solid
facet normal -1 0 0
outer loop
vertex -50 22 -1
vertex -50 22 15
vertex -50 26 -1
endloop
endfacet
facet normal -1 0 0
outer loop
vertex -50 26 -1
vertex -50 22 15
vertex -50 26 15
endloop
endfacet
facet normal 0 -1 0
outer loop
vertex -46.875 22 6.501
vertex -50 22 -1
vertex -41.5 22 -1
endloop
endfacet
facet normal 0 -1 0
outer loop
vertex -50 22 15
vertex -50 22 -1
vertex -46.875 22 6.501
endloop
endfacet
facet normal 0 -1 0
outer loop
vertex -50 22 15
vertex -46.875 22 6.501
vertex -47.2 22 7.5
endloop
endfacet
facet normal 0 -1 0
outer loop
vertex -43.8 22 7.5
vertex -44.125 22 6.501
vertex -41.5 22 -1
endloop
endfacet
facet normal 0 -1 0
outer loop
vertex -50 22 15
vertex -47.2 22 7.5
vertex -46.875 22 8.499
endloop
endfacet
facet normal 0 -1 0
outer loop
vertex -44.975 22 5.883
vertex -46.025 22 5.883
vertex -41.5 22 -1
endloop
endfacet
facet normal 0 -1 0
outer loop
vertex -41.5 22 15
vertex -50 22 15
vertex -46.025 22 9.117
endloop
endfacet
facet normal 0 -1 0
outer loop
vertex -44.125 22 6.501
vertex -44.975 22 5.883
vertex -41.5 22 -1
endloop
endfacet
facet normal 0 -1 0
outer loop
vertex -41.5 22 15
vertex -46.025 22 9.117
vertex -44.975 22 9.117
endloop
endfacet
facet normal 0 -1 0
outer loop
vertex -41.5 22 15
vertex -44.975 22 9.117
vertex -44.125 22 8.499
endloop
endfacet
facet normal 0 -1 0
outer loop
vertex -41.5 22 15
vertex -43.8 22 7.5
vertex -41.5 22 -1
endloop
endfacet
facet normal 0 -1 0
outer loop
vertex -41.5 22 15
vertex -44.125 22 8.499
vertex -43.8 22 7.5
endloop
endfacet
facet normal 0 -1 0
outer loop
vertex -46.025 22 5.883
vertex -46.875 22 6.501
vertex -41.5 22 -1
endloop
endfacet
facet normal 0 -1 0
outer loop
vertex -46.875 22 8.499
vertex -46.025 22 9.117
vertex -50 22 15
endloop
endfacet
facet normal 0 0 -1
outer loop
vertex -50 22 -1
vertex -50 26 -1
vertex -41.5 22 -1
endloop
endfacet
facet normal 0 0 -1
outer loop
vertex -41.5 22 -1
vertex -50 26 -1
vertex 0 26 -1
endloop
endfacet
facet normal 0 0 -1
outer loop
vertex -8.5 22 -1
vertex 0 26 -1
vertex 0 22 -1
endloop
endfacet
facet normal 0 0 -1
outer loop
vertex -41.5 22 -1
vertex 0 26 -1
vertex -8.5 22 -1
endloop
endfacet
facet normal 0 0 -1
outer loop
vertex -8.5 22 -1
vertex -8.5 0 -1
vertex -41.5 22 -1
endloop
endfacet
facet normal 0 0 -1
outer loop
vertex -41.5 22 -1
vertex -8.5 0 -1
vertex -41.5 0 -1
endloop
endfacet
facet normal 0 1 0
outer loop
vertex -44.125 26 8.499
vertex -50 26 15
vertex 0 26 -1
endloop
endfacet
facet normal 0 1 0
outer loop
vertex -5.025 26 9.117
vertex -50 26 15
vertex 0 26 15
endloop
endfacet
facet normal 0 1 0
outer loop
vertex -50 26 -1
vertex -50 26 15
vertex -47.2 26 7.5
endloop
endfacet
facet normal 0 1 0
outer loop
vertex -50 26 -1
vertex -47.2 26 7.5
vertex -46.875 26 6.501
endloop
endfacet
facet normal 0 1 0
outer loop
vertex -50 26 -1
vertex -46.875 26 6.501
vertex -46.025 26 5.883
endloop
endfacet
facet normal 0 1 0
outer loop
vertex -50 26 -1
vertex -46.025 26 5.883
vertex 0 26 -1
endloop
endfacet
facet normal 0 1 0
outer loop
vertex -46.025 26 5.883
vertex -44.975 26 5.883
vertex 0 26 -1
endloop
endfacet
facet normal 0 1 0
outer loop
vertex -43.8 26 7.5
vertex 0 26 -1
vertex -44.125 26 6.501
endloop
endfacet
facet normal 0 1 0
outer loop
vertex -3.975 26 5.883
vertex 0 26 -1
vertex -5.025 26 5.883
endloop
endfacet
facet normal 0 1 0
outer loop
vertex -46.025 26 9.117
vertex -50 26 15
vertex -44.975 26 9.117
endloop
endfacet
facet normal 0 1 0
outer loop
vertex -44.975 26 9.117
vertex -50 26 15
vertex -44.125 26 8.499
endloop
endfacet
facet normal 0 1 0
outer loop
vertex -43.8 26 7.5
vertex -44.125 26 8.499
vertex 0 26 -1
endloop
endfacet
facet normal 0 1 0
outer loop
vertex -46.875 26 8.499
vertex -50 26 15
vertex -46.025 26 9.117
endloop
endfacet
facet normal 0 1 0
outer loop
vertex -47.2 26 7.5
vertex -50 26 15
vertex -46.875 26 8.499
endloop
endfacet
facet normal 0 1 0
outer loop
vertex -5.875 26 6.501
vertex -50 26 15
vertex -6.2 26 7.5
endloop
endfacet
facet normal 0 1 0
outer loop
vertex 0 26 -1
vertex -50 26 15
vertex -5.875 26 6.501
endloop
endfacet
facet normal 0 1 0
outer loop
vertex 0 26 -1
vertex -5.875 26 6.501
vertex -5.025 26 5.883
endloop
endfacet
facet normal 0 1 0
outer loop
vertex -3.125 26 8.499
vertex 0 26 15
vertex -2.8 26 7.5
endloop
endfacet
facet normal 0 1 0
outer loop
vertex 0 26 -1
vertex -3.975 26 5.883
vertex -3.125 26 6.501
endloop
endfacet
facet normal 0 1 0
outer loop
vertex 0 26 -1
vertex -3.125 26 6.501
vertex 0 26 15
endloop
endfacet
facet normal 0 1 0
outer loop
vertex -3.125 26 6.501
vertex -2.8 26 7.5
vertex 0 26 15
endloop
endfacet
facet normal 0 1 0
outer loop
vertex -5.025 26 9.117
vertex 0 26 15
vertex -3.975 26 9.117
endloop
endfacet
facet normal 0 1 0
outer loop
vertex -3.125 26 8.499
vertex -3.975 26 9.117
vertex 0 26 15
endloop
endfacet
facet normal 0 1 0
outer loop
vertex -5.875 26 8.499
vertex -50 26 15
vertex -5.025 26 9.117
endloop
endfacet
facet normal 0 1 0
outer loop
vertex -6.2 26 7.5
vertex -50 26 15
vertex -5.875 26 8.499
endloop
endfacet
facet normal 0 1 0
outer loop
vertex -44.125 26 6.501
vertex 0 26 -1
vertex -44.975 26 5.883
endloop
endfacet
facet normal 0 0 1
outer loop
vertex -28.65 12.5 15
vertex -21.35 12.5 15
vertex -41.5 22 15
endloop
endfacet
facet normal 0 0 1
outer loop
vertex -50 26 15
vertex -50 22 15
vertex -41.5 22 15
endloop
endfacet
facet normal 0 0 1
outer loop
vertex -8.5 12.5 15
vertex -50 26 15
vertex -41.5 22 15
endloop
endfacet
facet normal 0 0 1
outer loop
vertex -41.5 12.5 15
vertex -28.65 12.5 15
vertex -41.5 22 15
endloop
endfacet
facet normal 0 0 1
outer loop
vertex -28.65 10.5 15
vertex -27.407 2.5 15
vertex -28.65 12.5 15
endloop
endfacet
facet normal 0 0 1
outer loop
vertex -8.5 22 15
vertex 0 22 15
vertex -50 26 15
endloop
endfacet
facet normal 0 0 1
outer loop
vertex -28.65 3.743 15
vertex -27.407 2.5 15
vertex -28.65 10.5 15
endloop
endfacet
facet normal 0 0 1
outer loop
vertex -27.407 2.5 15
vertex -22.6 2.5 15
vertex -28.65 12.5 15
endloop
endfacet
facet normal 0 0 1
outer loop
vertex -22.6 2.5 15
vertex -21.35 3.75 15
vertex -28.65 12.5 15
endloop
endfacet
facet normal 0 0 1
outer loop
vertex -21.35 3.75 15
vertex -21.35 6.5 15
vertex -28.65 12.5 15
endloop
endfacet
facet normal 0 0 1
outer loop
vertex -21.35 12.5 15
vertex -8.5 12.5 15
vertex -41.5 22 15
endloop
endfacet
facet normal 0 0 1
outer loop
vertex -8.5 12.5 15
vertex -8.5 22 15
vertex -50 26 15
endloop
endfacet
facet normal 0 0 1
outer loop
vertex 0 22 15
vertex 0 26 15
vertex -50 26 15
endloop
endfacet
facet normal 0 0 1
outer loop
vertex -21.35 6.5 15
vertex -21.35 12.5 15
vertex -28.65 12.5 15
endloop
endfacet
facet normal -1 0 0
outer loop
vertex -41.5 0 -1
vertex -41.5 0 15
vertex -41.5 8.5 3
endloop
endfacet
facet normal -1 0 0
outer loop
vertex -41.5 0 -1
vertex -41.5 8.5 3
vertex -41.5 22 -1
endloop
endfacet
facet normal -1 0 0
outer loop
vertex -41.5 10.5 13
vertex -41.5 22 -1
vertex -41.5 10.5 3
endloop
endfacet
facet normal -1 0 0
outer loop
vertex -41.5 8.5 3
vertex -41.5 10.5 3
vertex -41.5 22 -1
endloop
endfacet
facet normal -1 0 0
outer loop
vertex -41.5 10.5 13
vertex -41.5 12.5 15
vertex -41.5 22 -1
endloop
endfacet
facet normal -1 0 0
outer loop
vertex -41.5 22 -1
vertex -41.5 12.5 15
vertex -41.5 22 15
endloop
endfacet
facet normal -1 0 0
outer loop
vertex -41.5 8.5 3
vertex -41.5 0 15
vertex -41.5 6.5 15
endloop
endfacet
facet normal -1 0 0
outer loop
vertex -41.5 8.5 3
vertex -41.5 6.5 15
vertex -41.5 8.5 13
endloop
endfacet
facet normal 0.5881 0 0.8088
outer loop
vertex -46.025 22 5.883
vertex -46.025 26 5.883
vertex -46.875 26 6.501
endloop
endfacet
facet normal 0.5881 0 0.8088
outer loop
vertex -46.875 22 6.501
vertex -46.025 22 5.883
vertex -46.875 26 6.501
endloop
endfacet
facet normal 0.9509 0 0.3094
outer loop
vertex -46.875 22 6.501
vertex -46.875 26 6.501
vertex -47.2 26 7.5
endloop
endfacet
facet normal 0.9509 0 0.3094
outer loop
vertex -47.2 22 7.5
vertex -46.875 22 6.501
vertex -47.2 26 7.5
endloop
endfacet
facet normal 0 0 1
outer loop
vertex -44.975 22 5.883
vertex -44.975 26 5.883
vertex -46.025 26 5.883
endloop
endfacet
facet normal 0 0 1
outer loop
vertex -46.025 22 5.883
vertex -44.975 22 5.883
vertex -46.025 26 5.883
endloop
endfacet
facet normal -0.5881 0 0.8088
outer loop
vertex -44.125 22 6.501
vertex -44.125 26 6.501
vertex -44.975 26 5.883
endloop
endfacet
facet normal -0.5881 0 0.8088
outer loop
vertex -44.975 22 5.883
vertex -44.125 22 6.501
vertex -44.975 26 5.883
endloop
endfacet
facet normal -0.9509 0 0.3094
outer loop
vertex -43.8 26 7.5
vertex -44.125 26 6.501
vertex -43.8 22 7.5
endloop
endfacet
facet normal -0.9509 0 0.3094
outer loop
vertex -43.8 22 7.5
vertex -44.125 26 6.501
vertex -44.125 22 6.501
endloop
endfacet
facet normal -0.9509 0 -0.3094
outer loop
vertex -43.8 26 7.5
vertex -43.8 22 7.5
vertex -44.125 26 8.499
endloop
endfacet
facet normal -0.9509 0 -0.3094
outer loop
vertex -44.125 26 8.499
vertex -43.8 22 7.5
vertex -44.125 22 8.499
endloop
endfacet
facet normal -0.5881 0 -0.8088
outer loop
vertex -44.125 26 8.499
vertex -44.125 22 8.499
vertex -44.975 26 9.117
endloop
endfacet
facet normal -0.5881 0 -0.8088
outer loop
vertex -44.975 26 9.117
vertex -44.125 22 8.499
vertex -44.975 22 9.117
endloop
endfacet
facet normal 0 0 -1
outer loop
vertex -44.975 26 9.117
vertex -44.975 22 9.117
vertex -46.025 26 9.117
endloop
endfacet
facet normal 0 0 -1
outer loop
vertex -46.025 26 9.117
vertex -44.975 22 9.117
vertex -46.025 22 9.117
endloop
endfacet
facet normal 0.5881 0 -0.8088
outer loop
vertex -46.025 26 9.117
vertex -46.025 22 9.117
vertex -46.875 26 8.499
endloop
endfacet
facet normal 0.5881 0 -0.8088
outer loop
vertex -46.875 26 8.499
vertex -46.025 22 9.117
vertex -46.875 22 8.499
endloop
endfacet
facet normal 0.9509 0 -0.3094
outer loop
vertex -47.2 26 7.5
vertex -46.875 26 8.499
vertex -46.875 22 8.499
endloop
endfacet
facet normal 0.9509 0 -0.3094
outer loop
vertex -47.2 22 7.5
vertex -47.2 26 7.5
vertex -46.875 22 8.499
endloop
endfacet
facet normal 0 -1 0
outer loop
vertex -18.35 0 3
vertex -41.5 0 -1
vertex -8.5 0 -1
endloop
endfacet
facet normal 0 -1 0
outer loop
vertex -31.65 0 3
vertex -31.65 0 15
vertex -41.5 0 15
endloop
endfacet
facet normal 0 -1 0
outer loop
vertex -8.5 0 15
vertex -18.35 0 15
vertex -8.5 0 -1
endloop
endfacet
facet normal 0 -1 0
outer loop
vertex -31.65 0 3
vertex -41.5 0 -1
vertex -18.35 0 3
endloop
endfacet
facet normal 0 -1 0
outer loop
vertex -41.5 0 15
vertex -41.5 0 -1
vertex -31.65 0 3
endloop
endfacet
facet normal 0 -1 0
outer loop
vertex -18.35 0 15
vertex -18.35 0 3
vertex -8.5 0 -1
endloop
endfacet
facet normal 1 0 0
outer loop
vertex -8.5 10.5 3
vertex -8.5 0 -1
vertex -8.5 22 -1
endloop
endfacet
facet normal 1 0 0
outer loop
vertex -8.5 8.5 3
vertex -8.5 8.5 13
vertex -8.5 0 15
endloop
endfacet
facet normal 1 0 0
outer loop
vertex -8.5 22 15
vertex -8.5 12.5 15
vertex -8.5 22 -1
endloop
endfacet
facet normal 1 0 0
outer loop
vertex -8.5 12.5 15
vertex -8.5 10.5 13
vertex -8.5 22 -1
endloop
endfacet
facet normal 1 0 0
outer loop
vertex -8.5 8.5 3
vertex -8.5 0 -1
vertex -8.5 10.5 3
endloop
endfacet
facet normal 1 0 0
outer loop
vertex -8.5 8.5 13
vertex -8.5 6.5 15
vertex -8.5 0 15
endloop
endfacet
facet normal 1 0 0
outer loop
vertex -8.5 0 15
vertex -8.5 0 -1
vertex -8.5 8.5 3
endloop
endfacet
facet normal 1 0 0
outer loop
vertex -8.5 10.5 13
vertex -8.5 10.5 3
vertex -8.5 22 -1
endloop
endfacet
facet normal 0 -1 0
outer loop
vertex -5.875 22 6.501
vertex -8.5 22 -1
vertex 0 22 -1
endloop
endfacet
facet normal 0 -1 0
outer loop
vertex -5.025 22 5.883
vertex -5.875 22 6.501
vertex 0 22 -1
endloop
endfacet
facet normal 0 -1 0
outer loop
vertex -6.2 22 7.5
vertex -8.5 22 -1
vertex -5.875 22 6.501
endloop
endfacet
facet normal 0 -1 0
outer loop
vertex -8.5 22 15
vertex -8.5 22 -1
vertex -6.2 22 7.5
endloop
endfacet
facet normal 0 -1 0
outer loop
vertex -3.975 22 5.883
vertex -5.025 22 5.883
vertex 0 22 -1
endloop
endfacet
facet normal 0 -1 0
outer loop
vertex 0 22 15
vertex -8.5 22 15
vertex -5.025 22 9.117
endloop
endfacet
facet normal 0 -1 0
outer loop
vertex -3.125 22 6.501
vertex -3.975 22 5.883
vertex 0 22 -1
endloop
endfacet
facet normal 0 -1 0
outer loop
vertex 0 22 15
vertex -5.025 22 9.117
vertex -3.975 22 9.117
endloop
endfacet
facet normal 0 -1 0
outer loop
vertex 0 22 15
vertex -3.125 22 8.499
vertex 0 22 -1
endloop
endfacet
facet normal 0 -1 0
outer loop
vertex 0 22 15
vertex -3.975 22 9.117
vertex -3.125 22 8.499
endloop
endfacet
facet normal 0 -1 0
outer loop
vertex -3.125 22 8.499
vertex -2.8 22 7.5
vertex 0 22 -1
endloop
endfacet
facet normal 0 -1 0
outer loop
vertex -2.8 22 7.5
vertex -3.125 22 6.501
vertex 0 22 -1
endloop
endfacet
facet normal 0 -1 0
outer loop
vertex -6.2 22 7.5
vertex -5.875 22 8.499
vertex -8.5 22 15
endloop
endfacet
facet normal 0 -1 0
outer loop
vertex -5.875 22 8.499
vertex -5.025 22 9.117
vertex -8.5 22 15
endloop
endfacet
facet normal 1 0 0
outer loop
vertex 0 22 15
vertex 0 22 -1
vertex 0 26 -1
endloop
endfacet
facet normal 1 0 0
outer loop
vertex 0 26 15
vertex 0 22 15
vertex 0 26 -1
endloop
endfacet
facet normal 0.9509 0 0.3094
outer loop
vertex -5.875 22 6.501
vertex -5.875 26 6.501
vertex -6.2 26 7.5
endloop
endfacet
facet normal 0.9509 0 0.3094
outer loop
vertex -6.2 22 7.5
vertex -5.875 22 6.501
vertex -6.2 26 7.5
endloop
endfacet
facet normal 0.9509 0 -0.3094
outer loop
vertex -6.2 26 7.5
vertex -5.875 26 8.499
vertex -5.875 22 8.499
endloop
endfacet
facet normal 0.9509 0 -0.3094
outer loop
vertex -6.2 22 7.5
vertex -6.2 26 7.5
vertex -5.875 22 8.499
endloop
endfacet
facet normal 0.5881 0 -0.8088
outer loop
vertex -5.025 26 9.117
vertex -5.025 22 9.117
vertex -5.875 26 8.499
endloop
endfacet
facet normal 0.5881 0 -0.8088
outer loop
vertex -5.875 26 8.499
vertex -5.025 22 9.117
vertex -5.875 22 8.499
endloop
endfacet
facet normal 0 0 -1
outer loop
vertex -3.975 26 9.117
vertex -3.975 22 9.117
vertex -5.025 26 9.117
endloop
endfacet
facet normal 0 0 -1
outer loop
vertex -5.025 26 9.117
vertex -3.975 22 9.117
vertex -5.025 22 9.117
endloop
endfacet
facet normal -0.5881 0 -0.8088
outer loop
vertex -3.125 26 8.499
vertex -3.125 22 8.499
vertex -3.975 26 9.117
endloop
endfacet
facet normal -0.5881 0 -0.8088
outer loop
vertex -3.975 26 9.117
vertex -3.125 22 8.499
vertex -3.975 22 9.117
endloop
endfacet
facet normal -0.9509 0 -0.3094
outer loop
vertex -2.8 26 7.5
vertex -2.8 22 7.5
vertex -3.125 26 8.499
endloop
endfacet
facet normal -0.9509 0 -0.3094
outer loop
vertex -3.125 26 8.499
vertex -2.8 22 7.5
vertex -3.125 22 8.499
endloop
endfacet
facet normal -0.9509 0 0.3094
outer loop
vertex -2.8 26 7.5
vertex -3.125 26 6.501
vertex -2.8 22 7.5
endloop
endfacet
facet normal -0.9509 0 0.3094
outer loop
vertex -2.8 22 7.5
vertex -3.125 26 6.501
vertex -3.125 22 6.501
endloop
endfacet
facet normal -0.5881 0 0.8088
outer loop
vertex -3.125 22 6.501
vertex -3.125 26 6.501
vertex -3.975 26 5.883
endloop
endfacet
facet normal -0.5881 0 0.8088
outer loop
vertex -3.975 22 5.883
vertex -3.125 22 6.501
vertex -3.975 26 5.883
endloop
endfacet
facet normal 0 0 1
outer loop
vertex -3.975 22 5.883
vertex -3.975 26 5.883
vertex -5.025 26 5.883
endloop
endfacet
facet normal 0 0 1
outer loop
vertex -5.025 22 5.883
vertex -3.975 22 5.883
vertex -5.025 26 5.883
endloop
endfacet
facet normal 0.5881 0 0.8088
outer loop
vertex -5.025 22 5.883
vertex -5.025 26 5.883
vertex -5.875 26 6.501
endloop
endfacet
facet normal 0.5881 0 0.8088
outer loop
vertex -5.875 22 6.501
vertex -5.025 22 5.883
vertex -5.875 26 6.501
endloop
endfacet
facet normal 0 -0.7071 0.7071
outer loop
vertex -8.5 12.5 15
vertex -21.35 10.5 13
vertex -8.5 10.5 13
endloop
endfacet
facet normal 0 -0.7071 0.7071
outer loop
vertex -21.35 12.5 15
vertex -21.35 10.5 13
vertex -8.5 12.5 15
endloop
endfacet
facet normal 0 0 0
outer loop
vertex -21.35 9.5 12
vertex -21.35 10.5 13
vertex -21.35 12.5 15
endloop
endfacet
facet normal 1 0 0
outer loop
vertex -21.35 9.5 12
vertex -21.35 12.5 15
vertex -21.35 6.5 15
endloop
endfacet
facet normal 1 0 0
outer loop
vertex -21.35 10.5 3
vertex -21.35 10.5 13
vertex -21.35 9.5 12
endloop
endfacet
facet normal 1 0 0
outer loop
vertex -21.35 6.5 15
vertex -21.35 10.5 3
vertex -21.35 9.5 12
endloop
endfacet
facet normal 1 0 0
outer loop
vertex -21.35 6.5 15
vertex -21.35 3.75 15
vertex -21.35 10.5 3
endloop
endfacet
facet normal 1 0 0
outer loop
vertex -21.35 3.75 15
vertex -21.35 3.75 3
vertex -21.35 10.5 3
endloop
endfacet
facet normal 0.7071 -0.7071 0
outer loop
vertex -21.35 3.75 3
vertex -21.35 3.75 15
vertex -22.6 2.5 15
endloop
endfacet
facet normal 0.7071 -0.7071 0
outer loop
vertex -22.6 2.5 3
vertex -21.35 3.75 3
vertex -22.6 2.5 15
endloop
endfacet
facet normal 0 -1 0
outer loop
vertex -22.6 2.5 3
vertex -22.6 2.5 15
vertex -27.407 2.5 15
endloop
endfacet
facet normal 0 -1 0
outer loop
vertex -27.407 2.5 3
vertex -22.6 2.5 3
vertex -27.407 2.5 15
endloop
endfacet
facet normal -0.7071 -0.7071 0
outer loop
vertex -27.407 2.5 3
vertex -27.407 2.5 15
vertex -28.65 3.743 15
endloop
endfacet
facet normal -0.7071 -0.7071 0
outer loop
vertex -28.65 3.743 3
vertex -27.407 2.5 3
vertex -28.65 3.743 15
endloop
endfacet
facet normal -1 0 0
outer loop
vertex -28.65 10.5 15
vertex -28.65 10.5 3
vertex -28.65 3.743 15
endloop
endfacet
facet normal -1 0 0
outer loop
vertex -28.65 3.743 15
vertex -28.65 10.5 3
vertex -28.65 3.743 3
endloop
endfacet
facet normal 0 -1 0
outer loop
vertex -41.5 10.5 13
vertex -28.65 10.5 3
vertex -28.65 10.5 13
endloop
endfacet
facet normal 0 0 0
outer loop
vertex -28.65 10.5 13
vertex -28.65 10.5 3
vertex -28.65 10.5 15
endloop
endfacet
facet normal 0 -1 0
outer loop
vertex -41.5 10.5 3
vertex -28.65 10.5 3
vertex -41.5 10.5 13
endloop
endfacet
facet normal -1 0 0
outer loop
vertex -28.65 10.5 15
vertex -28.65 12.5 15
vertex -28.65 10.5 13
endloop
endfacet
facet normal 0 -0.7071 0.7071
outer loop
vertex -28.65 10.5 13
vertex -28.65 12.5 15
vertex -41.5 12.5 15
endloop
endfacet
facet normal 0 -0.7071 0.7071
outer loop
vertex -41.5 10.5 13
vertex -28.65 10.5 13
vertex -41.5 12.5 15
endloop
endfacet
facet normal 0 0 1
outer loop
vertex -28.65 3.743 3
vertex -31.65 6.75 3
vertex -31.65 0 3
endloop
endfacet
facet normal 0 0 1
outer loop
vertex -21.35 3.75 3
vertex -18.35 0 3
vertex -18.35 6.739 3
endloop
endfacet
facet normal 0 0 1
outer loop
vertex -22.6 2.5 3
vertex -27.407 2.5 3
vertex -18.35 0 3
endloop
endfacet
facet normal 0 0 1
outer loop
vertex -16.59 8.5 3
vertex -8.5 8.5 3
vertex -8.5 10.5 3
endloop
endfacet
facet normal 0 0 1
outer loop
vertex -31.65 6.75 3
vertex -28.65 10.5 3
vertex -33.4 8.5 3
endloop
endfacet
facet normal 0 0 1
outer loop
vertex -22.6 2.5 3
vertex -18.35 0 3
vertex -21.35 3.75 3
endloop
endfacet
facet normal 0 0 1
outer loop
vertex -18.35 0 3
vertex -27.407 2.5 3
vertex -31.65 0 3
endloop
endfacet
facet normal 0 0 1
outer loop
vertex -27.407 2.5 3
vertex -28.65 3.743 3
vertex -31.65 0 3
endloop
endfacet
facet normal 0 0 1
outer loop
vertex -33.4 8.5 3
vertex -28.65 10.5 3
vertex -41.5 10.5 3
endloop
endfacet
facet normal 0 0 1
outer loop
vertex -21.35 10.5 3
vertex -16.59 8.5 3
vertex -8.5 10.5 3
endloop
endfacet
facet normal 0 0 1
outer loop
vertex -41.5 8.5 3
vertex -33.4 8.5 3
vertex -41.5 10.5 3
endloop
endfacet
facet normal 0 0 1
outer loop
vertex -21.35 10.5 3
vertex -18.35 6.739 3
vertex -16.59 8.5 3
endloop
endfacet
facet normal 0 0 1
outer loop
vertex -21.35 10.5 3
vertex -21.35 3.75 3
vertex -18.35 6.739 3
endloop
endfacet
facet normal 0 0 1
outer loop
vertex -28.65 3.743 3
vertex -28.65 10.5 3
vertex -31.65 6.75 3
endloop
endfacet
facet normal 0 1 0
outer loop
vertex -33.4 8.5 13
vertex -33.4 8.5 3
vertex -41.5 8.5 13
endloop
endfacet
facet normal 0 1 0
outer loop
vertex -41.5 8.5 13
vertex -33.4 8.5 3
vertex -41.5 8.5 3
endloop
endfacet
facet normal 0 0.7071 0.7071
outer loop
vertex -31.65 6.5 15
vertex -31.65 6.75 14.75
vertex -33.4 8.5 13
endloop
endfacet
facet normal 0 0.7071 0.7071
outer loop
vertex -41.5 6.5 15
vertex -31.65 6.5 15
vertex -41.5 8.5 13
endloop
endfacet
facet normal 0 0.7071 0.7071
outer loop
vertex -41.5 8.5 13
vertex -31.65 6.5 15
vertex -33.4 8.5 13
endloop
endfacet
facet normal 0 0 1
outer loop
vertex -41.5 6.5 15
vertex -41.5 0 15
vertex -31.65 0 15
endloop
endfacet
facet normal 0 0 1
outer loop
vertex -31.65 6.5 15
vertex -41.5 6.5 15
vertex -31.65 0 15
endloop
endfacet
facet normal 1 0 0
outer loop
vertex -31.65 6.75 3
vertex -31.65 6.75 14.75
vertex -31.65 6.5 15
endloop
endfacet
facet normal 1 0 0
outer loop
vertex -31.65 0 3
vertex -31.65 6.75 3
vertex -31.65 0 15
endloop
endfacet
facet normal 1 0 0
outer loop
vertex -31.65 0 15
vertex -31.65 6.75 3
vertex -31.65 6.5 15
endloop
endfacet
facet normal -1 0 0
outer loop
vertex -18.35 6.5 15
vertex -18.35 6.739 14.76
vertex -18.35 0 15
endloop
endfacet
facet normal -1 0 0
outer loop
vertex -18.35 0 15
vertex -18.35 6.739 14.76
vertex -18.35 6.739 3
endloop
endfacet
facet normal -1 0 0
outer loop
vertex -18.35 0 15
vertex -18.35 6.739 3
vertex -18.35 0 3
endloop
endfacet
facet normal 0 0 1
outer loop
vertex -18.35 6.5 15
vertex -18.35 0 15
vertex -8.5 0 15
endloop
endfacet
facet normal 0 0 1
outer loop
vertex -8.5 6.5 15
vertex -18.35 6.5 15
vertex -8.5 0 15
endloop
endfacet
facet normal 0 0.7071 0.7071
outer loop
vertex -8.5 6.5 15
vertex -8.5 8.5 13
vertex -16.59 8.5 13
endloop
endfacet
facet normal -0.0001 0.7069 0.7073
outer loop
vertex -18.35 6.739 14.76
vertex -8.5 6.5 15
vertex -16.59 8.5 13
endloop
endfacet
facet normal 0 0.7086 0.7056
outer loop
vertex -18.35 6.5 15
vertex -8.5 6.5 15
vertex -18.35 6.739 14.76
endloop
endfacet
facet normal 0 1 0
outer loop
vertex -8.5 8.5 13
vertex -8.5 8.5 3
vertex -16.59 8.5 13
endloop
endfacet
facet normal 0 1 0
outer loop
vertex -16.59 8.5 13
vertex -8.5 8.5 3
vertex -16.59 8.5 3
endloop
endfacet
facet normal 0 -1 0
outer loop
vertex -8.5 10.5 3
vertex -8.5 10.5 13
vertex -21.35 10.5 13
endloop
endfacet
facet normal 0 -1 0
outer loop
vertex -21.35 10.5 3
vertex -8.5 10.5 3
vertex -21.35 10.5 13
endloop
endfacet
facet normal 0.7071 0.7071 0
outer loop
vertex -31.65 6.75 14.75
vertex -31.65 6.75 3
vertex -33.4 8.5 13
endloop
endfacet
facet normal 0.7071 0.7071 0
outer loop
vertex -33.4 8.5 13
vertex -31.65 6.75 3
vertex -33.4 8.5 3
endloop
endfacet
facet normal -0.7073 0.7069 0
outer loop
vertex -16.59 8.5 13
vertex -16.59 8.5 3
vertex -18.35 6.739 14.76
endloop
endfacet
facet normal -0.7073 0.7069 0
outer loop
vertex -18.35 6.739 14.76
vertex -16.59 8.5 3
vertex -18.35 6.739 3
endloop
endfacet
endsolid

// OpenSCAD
// PRUSA iteration3
// Y belt holder
// GNU GPL v3
// Josef Průša <iam@josefprusa.cz> and contributors
// http://www.reprap.org/wiki/Prusa_Mendel
// http://prusamendel.org


module belt_holder_base(){
 translate([-33-8.5,0,-1]) cube([33,15,16]); 
 translate([-33-8.5,11,-1]) cube([33,15,16]);
 translate([-50,22,-1]) cube([50,4,16]);	
}

module belt_holder_labyrinth(){
 // Cut the labyrinth for the belt
 translate([-8.5,0,0]) union(){
	 translate([-23.15,0,3]) cube([3,10.5,15]);
	 translate([-12.85,0,3]) cube([3,10.5,15]);
	 translate([-20.15,-.5,3]) rotate([0, 0, 45]) cube([3,3,15]);
	 translate([-20.15,-.5,3]) cube([8,3,15]);
	 translate([-14.95,1.65,3]) rotate([0, 0, -45]) cube([3,3,15]);
	 translate([-23.15,6.75,3]) rotate([0, 0, 45]) cube([2.5,2.5,15]);
	 translate([-11.625,8.5,3]) rotate([0, 0, -45]) cube([2.5,2.5,15]);
 }

 
 
	union(){
	 // Belt slits
	 translate([-42,8.5,3]) cube([13.25,2,15]);
	 translate([-21.25,8.5,3]) cube([34,2,15]);
	 // Smooth entrance
	 translate([-21.35,9.5,12]) rotate([45,0,0]) cube([34,15,15]);
	 #translate([-42,9.5,12]) rotate([45,0,0]) cube([13.35,15,15]);
	}
}

module belt_holder_beltcut(){
 position_tweak=-0.2;
 // Belt slit
 translate([-66,-0.5+10,3]) cube([67,1,15]);
 // Smooth insert cutout
 translate([-66,-0.5+10,12]) rotate([45,0,0]) cube([67,15,15]);
 // Individual teeth
 for ( i = [0 : 23] ){
  translate([0-i*3+position_tweak,-0.5+8,3]) cube([1.7,3,15]);
 }
 // Middle opening
 translate([-2-25,-1,3]) cube([4,11,15]);	
}

module belt_holder_holes(){
 translate([-4.5,0,7.5]) rotate([-90,0,0]) cylinder(h=30, r=1.7, $fn=10);
 translate([-45.5,0,7.5]) rotate([-90,0,0]) cylinder(h=30, r=1.7, $fn=10);
}

// Final part
module belt_holder(){
 difference(){
  belt_holder_base();
  belt_holder_labyrinth();
  //belt_holder_beltcut();
  belt_holder_holes();
 }
}

belt_holder();
